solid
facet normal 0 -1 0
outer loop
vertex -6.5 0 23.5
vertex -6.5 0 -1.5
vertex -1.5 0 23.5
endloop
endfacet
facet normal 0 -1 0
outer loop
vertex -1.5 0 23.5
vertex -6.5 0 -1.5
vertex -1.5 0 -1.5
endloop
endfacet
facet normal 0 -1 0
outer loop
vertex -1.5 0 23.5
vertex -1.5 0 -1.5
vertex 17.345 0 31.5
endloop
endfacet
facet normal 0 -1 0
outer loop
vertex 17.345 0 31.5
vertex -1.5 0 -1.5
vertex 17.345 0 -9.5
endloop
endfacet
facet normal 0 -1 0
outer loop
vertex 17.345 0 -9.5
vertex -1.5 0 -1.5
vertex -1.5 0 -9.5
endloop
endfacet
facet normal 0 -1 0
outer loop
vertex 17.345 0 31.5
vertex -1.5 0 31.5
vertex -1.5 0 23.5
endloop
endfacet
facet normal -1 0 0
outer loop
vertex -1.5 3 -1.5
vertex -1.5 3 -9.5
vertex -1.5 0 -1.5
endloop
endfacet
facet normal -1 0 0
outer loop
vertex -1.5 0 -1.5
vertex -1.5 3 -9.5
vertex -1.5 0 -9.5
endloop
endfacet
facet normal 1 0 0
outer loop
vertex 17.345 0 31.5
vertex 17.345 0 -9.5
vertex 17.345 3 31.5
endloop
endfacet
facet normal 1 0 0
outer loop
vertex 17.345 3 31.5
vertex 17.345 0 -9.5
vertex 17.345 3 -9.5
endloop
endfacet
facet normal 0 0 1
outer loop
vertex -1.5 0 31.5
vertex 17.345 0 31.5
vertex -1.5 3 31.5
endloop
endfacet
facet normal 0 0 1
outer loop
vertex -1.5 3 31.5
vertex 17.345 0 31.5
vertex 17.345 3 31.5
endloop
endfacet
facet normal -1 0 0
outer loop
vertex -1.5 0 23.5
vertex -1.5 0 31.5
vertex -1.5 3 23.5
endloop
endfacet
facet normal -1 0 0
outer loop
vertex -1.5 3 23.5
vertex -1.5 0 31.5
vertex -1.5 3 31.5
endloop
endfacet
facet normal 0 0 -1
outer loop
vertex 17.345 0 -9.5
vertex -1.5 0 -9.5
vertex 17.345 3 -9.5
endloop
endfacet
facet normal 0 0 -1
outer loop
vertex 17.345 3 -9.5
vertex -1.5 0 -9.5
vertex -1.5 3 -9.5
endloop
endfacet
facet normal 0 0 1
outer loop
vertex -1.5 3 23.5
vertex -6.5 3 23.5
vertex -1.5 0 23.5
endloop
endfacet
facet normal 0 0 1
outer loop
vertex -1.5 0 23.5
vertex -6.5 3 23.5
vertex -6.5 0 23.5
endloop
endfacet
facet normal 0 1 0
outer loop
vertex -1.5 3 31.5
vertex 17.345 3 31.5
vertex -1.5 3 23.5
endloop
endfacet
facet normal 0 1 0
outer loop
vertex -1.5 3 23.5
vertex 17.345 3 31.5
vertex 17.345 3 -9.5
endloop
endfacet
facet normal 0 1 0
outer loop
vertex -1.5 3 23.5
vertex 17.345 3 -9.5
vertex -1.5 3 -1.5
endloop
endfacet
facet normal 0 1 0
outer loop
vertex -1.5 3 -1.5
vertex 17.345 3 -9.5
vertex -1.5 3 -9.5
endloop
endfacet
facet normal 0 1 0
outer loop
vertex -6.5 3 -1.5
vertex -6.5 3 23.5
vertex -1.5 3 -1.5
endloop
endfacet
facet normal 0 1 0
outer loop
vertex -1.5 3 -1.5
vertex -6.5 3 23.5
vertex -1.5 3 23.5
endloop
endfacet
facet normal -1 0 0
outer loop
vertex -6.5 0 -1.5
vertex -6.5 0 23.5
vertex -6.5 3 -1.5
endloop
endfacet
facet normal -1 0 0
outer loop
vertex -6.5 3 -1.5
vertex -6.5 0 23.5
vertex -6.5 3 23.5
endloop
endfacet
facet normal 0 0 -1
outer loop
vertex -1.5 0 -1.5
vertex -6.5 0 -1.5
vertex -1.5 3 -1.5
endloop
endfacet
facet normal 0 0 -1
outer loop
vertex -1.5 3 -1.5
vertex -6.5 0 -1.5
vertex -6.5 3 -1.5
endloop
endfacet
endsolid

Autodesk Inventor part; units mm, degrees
ref_plane "YZ Plane" through (0, 0, 0) normal (1, 0, 0) x (0, 1, 0)
ref_plane "XZ Plane" through (0, 0, 0) normal (0, 1, 0) x (-1, 0, 0)
ref_plane "XY Plane" through (0, 0, 0) normal (0, 0, 1) x (1, 0, 0)
sketch "Sketch1" plane through (0, 0, 0) normal (0, 1, 0) x (-1, 0, 0)
  line L0 (-42.845, -43.5625) -> (-42.845, 65.5625)
  line L1 (33.4911, -43.5625) -> (33.4911, 65.5625)
  line L2 (33.4911, 30) -> (33.4911, -8)
  line L3 (-42.845, -8) -> (-42.845, 30)
  line L4 (-42.845, -43.5625) -> (-42.845, 65.5625)
  line L5 (-42.845, 30) -> (-17.845, 30)
  line L6 (-17.845, 30) -> (-17.845, -8)
  line L7 (-17.845, -8) -> (-42.845, -8)
  line L8 (-42.845, -8) -> (-42.845, 30)
  line L9 (33.4911, 30) -> (8.4911, 30)
  line L10 (8.4911, 30) -> (8.4911, -8)
  line L11 (8.4911, -8) -> (33.4911, -8)
  line L12 (33.4911, -8) -> (33.4911, 30)
  line L13 (-17.845, 30) -> (-17.845, -8)
  line L14 (8.4911, -8) -> (8.4911, 30)
  line L15 (-17.845, 30) -> (-15.845, 30)
  line L16 (-15.845, 30) -> (-15.845, -8)
  line L17 (-15.845, -8) -> (-17.845, -8)
  line L18 (-17.845, -8) -> (-17.845, 30)
  line L19 (8.4911, 30) -> (6.4911, 30)
  line L20 (6.4911, 30) -> (6.4911, -8)
  line L21 (6.4911, -8) -> (8.4911, -8)
  line L22 (8.4911, -8) -> (8.4911, 30)
  line L23 (-15.845, -8) -> (-15.845, 30)
  line L24 (6.4911, 30) -> (6.4911, -8)
  line L25 (-15.845, -8) -> (-15.845, 30)
  line L26 (-15.845, 30) -> (-15.845, -8)
  line L27 (0, 22) -> (0, 40.5625)
  line L28 (-17.845, -8) -> (0, -8)
  line L29 (0, -8) -> (0, 30)
  line L30 (0, 30) -> (-17.845, 30)
  line L31 (-17.845, 30) -> (-17.845, -8)
  line L32 (5, 22) -> (5, 0)
  line L33 (0, 22) -> (5, 22)
  line L34 (5, 22) -> (5, 0)
  line L35 (5, 0) -> (0, 0)
  line L36 (0, 0) -> (0, 22)
  line L37 (1.5, 31.5) -> (-17.345, 31.5)
  line L38 (-17.345, 31.5) -> (-17.345, -9.5)
  line L39 (-17.345, -9.5) -> (1.5, -9.5)
  line L40 (1.5, -9.5) -> (1.5, 31.5)
  line L41 (6.5, 23.5) -> (0, 23.5)
  line L42 (0, 23.5) -> (0, -1.5)
  line L43 (0, -1.5) -> (6.5, -1.5)
  line L44 (6.5, -1.5) -> (6.5, 23.5)
  point P0 (-45.9471, 11)
  point P1 (-45.845, 65.5625)
  point P2 (36.4911, 65.5625)
  point P3 (-42.845, 11)
  point P4 (-42.845, 11)
  dimension "d0" = 38
  dimension "d1" = 25
  dimension "d2" = 38
  dimension "d3" = 25
  dimension "d4" = 2
  dimension "d5" = 2
  dimension "d6" = 1.5
  dimension "d7" = 1.5
  dimension "d8" = 1.5
  dimension "d9" = 1.5
  dimension "d10" = 1.5
  dimension "d11" = 1.5
  dimension "d12" = 1.5
extrude "Extrusion1" add sketch "Sketch1" along normal blind 3 contours L38 L15 L16 L17 | L17 L28 L29 L43 L40 L39 L38 | L38 L37 L27 L30 L15 | L16 L30 L27 L29 L28 | L27 L37 L40 L41 | L29 L35 L40 L43 | L40 L35 L32 L33 L41 L20 L43 | L41 L40 L33 L27 | L29 L33 L40 L35 | L40 L33 L32 L35 | L20 L41 L44 L43
equation "\"d8\" = d7"
equation "\"d9\" = d7"
equation "\"d10\" = d9"
equation "\"d11\" = d7"
equation "\"d12\" = d7"
properties part number "bottom perspex"
